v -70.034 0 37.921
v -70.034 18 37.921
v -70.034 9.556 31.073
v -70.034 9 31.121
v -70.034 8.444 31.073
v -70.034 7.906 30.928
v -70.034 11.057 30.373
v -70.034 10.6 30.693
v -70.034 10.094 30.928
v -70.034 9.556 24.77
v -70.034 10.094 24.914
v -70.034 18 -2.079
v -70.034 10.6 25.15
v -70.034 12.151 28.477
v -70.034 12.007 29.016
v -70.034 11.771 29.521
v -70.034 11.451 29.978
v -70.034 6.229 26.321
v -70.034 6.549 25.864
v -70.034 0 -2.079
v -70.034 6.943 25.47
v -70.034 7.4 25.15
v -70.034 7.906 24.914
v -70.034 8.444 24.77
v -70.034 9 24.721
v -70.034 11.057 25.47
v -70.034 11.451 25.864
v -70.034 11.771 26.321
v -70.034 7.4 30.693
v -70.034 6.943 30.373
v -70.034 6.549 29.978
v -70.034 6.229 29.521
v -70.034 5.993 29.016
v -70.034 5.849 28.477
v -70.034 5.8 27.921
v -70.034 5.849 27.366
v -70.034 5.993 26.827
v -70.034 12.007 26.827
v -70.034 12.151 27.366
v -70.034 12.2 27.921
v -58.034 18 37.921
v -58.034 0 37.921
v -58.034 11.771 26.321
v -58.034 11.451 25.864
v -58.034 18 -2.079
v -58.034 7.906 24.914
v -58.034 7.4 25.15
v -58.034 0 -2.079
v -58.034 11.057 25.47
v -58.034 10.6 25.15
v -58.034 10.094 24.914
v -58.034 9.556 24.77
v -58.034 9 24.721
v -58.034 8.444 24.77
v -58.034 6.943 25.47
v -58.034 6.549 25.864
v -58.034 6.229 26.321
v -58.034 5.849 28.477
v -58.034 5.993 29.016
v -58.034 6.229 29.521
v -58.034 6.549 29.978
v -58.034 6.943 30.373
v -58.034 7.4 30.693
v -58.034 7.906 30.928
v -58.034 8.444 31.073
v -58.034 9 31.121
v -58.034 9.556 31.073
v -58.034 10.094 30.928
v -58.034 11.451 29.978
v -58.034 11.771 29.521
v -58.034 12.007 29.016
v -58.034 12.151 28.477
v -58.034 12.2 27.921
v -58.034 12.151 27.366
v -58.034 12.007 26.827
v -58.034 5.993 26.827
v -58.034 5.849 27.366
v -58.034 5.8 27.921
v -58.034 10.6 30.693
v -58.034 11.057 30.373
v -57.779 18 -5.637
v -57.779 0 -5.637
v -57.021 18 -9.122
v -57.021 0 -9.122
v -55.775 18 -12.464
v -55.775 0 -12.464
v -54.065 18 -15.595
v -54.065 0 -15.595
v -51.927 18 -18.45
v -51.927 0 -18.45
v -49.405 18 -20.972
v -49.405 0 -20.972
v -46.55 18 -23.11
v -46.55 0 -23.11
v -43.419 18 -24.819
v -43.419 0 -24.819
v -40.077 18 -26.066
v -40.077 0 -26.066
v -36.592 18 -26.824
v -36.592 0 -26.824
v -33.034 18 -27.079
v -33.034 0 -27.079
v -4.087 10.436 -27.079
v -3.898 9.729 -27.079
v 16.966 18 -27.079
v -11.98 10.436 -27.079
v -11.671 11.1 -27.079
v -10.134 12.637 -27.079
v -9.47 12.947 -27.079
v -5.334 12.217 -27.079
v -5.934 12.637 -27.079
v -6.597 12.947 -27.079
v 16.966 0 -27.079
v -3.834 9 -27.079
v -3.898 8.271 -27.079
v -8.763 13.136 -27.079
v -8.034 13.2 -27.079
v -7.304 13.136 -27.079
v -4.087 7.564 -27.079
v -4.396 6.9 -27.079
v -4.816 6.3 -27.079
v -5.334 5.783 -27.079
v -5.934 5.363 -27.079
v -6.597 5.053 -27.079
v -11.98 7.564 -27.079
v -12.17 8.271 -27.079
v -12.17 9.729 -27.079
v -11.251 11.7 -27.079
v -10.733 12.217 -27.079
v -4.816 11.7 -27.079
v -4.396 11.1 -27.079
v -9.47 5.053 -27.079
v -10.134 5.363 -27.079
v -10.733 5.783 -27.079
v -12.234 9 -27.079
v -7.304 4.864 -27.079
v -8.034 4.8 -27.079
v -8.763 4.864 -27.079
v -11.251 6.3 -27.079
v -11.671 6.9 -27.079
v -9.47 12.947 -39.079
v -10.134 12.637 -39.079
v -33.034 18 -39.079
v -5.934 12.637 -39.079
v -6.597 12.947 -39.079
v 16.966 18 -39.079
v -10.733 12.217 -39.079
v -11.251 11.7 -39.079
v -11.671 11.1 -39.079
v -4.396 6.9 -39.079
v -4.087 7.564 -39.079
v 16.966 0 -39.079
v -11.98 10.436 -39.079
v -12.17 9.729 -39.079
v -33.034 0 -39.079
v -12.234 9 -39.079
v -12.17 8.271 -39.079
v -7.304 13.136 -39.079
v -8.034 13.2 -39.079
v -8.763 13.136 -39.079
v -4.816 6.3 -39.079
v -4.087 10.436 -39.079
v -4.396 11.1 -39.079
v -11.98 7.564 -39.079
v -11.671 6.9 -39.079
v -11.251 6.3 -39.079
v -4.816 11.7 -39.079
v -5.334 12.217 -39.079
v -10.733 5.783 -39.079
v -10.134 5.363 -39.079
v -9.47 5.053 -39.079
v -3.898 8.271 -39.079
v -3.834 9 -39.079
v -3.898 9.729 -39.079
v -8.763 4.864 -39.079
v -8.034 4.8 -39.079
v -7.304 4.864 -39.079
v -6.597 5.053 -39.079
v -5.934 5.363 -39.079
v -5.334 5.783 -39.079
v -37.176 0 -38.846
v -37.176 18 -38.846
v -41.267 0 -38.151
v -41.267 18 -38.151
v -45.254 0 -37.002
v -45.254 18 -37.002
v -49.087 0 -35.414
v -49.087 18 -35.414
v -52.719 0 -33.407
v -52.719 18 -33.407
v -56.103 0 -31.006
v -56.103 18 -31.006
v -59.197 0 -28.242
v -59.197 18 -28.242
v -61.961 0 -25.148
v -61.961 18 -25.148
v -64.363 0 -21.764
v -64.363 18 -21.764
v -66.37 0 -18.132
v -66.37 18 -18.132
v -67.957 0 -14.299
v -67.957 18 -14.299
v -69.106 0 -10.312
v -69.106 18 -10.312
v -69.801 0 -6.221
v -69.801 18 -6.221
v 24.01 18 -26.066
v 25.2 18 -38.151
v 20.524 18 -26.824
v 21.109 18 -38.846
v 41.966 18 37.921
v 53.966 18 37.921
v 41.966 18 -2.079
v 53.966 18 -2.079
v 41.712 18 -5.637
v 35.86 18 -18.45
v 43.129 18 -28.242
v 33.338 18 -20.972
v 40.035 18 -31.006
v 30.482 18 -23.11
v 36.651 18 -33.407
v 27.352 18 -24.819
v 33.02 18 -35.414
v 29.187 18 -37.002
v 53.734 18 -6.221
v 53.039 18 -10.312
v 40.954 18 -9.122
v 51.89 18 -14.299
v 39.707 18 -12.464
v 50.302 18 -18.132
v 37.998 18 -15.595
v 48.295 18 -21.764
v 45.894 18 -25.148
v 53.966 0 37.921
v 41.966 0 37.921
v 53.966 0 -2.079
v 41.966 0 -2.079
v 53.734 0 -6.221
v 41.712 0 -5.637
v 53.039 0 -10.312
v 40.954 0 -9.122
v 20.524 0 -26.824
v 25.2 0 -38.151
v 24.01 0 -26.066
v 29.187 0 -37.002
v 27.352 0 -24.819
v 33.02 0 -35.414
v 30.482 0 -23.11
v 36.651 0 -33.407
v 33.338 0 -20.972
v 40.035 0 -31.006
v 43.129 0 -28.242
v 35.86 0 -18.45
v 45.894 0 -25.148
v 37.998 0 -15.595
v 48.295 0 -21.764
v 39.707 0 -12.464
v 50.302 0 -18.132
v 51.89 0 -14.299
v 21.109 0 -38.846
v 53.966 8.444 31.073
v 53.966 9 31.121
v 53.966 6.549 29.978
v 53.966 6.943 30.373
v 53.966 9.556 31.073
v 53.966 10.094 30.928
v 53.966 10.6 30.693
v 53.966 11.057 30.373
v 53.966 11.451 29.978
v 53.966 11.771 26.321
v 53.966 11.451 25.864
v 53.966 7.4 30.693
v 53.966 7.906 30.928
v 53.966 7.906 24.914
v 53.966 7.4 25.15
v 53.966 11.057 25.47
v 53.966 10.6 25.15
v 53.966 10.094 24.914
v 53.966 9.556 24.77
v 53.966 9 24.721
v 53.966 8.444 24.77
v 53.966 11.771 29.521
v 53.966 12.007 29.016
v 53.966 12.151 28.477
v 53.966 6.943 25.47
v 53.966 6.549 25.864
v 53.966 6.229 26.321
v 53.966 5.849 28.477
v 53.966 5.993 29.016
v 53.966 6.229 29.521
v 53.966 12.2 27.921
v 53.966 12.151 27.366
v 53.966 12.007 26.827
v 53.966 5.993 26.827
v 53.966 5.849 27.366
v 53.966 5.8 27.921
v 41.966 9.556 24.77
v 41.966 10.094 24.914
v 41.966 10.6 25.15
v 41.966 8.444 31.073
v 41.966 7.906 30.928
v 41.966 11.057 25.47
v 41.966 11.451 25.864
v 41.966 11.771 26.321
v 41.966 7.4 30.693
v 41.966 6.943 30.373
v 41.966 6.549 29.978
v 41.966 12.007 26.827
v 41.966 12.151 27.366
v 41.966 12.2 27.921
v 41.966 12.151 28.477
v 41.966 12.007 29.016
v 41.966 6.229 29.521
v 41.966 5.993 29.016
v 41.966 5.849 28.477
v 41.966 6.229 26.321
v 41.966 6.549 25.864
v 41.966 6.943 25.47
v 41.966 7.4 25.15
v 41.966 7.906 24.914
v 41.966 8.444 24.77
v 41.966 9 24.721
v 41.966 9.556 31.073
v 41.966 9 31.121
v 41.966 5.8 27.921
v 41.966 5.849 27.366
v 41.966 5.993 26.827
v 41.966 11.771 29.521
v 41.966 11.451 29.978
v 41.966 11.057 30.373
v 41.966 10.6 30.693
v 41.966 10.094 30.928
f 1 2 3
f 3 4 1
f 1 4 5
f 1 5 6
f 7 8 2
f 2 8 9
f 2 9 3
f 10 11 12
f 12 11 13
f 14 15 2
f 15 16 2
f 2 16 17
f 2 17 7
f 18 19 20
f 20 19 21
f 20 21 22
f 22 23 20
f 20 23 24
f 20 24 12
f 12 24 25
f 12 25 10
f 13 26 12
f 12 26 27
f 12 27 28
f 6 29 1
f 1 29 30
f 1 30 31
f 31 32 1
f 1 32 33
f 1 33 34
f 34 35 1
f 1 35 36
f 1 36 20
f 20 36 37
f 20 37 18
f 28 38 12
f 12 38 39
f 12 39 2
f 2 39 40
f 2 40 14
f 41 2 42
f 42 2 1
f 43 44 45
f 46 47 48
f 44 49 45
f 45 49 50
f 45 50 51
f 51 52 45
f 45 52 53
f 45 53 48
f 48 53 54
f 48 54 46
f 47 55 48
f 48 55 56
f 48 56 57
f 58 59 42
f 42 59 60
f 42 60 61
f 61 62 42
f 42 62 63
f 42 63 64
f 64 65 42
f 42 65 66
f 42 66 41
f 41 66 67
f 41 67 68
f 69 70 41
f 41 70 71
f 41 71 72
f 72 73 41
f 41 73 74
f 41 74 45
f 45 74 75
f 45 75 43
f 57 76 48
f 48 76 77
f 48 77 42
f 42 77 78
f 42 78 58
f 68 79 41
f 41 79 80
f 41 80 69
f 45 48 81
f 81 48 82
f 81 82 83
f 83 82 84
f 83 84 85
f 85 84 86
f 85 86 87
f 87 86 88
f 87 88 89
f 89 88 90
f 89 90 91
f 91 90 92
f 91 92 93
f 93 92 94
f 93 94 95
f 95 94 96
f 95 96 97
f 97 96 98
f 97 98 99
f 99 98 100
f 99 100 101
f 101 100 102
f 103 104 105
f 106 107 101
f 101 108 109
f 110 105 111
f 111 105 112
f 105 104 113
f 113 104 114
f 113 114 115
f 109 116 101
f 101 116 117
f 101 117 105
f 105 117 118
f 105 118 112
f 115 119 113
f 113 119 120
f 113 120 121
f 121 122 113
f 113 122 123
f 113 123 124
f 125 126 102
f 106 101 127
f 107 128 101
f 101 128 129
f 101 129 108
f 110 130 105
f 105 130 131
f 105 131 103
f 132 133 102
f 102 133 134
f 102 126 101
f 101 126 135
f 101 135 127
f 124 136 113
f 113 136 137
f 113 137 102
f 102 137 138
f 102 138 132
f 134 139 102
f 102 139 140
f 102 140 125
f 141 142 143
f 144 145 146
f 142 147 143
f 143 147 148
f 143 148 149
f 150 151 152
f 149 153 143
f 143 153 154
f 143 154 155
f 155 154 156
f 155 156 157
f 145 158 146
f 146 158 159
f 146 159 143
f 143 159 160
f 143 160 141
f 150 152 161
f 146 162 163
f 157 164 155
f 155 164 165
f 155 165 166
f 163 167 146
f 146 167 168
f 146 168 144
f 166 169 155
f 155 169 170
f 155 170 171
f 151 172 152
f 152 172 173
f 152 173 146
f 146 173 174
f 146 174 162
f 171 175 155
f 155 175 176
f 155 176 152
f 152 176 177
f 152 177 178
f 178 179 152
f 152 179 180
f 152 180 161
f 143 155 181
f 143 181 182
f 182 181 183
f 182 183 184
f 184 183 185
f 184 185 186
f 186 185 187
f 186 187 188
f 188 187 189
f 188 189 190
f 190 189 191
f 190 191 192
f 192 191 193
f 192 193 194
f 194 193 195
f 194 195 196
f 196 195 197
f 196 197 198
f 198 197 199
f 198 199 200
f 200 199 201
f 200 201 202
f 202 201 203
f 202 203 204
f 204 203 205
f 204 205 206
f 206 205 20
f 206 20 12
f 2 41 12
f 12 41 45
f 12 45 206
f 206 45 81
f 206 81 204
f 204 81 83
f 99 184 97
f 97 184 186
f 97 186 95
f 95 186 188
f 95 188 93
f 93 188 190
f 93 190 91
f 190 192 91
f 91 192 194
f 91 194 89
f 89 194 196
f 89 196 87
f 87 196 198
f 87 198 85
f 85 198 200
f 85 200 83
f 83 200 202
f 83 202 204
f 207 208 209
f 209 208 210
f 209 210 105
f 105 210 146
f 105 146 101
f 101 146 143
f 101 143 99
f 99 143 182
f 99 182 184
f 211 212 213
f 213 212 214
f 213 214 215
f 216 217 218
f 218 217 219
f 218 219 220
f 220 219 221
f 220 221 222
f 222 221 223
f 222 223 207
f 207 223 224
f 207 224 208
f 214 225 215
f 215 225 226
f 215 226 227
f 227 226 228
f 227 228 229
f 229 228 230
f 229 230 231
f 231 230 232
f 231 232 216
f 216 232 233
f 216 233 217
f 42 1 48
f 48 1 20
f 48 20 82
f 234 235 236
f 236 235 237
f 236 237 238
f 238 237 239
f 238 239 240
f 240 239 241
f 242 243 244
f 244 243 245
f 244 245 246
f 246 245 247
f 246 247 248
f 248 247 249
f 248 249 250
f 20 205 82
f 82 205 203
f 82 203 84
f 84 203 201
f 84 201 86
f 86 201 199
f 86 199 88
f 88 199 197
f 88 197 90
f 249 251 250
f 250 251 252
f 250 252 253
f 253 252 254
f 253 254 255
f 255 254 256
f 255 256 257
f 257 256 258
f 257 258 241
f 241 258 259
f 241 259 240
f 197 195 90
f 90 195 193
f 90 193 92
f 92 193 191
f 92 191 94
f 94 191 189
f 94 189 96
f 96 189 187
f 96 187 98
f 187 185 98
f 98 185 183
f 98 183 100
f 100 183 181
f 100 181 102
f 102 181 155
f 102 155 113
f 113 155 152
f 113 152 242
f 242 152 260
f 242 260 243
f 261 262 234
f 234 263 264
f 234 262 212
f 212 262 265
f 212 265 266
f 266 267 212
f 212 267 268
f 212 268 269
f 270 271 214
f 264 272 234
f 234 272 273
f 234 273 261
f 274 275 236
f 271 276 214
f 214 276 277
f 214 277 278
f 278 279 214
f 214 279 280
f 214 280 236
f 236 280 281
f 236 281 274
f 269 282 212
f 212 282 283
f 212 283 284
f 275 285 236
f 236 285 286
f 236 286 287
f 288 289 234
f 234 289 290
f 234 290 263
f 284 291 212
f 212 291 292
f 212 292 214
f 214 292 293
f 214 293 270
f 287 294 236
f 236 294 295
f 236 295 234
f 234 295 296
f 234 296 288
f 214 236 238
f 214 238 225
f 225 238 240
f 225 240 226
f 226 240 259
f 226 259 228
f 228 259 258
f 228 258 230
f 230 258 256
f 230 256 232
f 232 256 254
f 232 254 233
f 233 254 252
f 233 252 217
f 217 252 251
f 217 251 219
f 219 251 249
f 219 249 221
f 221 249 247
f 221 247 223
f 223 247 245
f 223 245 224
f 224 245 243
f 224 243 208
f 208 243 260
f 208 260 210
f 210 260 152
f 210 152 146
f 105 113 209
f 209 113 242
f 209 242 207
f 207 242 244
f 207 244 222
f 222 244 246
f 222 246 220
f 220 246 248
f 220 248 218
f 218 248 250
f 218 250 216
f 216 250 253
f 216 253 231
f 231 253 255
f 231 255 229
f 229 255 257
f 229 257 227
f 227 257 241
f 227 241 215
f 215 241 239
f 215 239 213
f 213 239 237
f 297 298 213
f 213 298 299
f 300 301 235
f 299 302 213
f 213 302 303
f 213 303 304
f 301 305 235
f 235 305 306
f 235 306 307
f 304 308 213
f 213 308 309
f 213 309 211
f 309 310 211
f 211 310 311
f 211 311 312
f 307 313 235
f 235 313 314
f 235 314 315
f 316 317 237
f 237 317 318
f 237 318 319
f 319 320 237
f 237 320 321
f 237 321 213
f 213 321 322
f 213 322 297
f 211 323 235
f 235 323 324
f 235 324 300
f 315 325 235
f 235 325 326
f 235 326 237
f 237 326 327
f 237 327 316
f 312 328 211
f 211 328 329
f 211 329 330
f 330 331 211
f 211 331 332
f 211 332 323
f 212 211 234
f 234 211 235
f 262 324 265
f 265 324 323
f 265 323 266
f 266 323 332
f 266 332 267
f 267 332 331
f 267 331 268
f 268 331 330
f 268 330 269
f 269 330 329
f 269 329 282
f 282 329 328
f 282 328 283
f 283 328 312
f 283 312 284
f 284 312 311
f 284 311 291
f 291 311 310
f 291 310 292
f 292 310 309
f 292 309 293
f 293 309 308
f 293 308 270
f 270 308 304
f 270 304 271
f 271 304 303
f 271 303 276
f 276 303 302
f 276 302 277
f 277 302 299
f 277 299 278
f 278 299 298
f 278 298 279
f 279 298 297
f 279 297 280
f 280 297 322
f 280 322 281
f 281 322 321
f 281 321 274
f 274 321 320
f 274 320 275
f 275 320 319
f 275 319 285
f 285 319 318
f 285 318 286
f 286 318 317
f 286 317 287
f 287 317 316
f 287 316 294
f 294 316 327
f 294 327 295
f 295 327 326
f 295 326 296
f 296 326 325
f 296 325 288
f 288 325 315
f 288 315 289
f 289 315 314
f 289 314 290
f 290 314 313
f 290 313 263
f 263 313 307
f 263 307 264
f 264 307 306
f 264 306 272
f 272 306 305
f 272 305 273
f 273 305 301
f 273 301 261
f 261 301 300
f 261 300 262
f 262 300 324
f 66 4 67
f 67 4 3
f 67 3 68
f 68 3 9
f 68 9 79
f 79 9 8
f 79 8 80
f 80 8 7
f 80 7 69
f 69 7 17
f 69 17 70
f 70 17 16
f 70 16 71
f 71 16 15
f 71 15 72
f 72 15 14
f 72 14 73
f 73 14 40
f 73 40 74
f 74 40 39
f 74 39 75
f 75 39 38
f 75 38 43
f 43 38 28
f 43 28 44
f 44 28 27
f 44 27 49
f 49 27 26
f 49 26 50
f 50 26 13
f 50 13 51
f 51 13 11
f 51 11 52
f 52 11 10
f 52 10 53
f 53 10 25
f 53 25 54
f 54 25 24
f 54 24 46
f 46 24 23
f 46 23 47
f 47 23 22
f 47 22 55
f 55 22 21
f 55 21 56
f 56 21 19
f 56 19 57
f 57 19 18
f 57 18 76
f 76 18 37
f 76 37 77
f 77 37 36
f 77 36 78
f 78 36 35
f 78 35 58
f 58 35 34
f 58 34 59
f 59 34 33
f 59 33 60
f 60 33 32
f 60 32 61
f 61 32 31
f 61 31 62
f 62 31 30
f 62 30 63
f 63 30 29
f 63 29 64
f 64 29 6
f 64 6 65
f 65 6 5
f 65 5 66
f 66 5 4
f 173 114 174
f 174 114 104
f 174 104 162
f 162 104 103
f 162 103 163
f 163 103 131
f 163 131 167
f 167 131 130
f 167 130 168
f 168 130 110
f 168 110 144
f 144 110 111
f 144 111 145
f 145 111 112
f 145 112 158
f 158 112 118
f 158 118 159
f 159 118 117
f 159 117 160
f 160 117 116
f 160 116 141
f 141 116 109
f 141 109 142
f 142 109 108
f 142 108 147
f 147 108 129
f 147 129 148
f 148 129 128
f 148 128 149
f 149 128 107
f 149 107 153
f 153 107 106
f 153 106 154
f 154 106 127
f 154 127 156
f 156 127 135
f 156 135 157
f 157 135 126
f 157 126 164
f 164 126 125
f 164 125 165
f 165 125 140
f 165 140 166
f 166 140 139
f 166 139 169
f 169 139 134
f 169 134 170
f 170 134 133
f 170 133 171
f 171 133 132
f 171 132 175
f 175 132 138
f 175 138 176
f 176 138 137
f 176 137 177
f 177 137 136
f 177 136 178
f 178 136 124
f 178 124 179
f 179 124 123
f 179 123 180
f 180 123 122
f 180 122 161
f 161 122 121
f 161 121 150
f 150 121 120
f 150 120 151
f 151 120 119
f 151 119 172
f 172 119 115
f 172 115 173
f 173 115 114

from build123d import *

# Parameters (mm, degrees)
BOSS_EXTRUDE1_DEPTH     = 18
SKETCH2_R               = 3.2
CUT_EXTRUDE1_DEPTH      = 150
CUT_EXTRUDE1_DEPTH_BACK = 40
SKETCH3_R               = 4.2
CUT_EXTRUDE2_DEPTH      = 40


with BuildPart() as part:
    # Sketch1 → Boss-Extrude1 (new body)
    with BuildSketch(Plane(origin=(0, 0, 0), x_dir=(1, 0, 0), z_dir=(0, 1, 0))):
        with BuildLine():
            Line((-70.033707865, -37.921348315), (-58.033707865, -37.921348315))
            Line((-58.033707865, -37.921348315), (-58.033707865, 2.078651685))
            ThreePointArc((-58.033707865, 2.078651685), (-50.711377395, 19.756321215), (-33.033707865, 27.078651685))
            Line((-33.033707865, 27.078651685), (-8.033707865, 27.078651685))
            Line((-8.033707865, 27.078651685), (-8.033707865, 39.078651685))
            Line((-8.033707865, 39.078651685), (-33.033707865, 39.078651685))
            ThreePointArc((-33.033707865, 39.078651685), (-59.196658769, 28.241602589), (-70.033707865, 2.078651685))
            Line((-70.033707865, 2.078651685), (-70.033707865, -37.921348315))
        make_face()
    boss_extrude1 = extrude(amount=BOSS_EXTRUDE1_DEPTH)

    # Mirror1: Boss-Extrude1 across plane
    add(boss_extrude1.mirror(Plane(origin=(-8.033707865, 18, -39.078651685), x_dir=(0, 0, 1), z_dir=(-1, 0, 0))))

    # Sketch2 → Cut-Extrude1 (cut, two sides)
    with BuildSketch(Plane(origin=(-58.033707865, 0, 0), x_dir=(0, 0, -1), z_dir=(1, 0, 0))) as cut_extrude1_sk:
        with Locations((-27.921348315, 9)):
            Circle(SKETCH2_R)
    extrude(amount=CUT_EXTRUDE1_DEPTH, mode=Mode.SUBTRACT)
    extrude(cut_extrude1_sk.sketch, amount=-CUT_EXTRUDE1_DEPTH_BACK, mode=Mode.SUBTRACT)

    # Sketch3 → Cut-Extrude2 (cut)
    with BuildSketch(Plane.XY.offset(-27.078651685)):
        with Locations((-8.033707865, 9)):
            Circle(SKETCH3_R)
    extrude(amount=-CUT_EXTRUDE2_DEPTH, mode=Mode.SUBTRACT)


solid = part.part
